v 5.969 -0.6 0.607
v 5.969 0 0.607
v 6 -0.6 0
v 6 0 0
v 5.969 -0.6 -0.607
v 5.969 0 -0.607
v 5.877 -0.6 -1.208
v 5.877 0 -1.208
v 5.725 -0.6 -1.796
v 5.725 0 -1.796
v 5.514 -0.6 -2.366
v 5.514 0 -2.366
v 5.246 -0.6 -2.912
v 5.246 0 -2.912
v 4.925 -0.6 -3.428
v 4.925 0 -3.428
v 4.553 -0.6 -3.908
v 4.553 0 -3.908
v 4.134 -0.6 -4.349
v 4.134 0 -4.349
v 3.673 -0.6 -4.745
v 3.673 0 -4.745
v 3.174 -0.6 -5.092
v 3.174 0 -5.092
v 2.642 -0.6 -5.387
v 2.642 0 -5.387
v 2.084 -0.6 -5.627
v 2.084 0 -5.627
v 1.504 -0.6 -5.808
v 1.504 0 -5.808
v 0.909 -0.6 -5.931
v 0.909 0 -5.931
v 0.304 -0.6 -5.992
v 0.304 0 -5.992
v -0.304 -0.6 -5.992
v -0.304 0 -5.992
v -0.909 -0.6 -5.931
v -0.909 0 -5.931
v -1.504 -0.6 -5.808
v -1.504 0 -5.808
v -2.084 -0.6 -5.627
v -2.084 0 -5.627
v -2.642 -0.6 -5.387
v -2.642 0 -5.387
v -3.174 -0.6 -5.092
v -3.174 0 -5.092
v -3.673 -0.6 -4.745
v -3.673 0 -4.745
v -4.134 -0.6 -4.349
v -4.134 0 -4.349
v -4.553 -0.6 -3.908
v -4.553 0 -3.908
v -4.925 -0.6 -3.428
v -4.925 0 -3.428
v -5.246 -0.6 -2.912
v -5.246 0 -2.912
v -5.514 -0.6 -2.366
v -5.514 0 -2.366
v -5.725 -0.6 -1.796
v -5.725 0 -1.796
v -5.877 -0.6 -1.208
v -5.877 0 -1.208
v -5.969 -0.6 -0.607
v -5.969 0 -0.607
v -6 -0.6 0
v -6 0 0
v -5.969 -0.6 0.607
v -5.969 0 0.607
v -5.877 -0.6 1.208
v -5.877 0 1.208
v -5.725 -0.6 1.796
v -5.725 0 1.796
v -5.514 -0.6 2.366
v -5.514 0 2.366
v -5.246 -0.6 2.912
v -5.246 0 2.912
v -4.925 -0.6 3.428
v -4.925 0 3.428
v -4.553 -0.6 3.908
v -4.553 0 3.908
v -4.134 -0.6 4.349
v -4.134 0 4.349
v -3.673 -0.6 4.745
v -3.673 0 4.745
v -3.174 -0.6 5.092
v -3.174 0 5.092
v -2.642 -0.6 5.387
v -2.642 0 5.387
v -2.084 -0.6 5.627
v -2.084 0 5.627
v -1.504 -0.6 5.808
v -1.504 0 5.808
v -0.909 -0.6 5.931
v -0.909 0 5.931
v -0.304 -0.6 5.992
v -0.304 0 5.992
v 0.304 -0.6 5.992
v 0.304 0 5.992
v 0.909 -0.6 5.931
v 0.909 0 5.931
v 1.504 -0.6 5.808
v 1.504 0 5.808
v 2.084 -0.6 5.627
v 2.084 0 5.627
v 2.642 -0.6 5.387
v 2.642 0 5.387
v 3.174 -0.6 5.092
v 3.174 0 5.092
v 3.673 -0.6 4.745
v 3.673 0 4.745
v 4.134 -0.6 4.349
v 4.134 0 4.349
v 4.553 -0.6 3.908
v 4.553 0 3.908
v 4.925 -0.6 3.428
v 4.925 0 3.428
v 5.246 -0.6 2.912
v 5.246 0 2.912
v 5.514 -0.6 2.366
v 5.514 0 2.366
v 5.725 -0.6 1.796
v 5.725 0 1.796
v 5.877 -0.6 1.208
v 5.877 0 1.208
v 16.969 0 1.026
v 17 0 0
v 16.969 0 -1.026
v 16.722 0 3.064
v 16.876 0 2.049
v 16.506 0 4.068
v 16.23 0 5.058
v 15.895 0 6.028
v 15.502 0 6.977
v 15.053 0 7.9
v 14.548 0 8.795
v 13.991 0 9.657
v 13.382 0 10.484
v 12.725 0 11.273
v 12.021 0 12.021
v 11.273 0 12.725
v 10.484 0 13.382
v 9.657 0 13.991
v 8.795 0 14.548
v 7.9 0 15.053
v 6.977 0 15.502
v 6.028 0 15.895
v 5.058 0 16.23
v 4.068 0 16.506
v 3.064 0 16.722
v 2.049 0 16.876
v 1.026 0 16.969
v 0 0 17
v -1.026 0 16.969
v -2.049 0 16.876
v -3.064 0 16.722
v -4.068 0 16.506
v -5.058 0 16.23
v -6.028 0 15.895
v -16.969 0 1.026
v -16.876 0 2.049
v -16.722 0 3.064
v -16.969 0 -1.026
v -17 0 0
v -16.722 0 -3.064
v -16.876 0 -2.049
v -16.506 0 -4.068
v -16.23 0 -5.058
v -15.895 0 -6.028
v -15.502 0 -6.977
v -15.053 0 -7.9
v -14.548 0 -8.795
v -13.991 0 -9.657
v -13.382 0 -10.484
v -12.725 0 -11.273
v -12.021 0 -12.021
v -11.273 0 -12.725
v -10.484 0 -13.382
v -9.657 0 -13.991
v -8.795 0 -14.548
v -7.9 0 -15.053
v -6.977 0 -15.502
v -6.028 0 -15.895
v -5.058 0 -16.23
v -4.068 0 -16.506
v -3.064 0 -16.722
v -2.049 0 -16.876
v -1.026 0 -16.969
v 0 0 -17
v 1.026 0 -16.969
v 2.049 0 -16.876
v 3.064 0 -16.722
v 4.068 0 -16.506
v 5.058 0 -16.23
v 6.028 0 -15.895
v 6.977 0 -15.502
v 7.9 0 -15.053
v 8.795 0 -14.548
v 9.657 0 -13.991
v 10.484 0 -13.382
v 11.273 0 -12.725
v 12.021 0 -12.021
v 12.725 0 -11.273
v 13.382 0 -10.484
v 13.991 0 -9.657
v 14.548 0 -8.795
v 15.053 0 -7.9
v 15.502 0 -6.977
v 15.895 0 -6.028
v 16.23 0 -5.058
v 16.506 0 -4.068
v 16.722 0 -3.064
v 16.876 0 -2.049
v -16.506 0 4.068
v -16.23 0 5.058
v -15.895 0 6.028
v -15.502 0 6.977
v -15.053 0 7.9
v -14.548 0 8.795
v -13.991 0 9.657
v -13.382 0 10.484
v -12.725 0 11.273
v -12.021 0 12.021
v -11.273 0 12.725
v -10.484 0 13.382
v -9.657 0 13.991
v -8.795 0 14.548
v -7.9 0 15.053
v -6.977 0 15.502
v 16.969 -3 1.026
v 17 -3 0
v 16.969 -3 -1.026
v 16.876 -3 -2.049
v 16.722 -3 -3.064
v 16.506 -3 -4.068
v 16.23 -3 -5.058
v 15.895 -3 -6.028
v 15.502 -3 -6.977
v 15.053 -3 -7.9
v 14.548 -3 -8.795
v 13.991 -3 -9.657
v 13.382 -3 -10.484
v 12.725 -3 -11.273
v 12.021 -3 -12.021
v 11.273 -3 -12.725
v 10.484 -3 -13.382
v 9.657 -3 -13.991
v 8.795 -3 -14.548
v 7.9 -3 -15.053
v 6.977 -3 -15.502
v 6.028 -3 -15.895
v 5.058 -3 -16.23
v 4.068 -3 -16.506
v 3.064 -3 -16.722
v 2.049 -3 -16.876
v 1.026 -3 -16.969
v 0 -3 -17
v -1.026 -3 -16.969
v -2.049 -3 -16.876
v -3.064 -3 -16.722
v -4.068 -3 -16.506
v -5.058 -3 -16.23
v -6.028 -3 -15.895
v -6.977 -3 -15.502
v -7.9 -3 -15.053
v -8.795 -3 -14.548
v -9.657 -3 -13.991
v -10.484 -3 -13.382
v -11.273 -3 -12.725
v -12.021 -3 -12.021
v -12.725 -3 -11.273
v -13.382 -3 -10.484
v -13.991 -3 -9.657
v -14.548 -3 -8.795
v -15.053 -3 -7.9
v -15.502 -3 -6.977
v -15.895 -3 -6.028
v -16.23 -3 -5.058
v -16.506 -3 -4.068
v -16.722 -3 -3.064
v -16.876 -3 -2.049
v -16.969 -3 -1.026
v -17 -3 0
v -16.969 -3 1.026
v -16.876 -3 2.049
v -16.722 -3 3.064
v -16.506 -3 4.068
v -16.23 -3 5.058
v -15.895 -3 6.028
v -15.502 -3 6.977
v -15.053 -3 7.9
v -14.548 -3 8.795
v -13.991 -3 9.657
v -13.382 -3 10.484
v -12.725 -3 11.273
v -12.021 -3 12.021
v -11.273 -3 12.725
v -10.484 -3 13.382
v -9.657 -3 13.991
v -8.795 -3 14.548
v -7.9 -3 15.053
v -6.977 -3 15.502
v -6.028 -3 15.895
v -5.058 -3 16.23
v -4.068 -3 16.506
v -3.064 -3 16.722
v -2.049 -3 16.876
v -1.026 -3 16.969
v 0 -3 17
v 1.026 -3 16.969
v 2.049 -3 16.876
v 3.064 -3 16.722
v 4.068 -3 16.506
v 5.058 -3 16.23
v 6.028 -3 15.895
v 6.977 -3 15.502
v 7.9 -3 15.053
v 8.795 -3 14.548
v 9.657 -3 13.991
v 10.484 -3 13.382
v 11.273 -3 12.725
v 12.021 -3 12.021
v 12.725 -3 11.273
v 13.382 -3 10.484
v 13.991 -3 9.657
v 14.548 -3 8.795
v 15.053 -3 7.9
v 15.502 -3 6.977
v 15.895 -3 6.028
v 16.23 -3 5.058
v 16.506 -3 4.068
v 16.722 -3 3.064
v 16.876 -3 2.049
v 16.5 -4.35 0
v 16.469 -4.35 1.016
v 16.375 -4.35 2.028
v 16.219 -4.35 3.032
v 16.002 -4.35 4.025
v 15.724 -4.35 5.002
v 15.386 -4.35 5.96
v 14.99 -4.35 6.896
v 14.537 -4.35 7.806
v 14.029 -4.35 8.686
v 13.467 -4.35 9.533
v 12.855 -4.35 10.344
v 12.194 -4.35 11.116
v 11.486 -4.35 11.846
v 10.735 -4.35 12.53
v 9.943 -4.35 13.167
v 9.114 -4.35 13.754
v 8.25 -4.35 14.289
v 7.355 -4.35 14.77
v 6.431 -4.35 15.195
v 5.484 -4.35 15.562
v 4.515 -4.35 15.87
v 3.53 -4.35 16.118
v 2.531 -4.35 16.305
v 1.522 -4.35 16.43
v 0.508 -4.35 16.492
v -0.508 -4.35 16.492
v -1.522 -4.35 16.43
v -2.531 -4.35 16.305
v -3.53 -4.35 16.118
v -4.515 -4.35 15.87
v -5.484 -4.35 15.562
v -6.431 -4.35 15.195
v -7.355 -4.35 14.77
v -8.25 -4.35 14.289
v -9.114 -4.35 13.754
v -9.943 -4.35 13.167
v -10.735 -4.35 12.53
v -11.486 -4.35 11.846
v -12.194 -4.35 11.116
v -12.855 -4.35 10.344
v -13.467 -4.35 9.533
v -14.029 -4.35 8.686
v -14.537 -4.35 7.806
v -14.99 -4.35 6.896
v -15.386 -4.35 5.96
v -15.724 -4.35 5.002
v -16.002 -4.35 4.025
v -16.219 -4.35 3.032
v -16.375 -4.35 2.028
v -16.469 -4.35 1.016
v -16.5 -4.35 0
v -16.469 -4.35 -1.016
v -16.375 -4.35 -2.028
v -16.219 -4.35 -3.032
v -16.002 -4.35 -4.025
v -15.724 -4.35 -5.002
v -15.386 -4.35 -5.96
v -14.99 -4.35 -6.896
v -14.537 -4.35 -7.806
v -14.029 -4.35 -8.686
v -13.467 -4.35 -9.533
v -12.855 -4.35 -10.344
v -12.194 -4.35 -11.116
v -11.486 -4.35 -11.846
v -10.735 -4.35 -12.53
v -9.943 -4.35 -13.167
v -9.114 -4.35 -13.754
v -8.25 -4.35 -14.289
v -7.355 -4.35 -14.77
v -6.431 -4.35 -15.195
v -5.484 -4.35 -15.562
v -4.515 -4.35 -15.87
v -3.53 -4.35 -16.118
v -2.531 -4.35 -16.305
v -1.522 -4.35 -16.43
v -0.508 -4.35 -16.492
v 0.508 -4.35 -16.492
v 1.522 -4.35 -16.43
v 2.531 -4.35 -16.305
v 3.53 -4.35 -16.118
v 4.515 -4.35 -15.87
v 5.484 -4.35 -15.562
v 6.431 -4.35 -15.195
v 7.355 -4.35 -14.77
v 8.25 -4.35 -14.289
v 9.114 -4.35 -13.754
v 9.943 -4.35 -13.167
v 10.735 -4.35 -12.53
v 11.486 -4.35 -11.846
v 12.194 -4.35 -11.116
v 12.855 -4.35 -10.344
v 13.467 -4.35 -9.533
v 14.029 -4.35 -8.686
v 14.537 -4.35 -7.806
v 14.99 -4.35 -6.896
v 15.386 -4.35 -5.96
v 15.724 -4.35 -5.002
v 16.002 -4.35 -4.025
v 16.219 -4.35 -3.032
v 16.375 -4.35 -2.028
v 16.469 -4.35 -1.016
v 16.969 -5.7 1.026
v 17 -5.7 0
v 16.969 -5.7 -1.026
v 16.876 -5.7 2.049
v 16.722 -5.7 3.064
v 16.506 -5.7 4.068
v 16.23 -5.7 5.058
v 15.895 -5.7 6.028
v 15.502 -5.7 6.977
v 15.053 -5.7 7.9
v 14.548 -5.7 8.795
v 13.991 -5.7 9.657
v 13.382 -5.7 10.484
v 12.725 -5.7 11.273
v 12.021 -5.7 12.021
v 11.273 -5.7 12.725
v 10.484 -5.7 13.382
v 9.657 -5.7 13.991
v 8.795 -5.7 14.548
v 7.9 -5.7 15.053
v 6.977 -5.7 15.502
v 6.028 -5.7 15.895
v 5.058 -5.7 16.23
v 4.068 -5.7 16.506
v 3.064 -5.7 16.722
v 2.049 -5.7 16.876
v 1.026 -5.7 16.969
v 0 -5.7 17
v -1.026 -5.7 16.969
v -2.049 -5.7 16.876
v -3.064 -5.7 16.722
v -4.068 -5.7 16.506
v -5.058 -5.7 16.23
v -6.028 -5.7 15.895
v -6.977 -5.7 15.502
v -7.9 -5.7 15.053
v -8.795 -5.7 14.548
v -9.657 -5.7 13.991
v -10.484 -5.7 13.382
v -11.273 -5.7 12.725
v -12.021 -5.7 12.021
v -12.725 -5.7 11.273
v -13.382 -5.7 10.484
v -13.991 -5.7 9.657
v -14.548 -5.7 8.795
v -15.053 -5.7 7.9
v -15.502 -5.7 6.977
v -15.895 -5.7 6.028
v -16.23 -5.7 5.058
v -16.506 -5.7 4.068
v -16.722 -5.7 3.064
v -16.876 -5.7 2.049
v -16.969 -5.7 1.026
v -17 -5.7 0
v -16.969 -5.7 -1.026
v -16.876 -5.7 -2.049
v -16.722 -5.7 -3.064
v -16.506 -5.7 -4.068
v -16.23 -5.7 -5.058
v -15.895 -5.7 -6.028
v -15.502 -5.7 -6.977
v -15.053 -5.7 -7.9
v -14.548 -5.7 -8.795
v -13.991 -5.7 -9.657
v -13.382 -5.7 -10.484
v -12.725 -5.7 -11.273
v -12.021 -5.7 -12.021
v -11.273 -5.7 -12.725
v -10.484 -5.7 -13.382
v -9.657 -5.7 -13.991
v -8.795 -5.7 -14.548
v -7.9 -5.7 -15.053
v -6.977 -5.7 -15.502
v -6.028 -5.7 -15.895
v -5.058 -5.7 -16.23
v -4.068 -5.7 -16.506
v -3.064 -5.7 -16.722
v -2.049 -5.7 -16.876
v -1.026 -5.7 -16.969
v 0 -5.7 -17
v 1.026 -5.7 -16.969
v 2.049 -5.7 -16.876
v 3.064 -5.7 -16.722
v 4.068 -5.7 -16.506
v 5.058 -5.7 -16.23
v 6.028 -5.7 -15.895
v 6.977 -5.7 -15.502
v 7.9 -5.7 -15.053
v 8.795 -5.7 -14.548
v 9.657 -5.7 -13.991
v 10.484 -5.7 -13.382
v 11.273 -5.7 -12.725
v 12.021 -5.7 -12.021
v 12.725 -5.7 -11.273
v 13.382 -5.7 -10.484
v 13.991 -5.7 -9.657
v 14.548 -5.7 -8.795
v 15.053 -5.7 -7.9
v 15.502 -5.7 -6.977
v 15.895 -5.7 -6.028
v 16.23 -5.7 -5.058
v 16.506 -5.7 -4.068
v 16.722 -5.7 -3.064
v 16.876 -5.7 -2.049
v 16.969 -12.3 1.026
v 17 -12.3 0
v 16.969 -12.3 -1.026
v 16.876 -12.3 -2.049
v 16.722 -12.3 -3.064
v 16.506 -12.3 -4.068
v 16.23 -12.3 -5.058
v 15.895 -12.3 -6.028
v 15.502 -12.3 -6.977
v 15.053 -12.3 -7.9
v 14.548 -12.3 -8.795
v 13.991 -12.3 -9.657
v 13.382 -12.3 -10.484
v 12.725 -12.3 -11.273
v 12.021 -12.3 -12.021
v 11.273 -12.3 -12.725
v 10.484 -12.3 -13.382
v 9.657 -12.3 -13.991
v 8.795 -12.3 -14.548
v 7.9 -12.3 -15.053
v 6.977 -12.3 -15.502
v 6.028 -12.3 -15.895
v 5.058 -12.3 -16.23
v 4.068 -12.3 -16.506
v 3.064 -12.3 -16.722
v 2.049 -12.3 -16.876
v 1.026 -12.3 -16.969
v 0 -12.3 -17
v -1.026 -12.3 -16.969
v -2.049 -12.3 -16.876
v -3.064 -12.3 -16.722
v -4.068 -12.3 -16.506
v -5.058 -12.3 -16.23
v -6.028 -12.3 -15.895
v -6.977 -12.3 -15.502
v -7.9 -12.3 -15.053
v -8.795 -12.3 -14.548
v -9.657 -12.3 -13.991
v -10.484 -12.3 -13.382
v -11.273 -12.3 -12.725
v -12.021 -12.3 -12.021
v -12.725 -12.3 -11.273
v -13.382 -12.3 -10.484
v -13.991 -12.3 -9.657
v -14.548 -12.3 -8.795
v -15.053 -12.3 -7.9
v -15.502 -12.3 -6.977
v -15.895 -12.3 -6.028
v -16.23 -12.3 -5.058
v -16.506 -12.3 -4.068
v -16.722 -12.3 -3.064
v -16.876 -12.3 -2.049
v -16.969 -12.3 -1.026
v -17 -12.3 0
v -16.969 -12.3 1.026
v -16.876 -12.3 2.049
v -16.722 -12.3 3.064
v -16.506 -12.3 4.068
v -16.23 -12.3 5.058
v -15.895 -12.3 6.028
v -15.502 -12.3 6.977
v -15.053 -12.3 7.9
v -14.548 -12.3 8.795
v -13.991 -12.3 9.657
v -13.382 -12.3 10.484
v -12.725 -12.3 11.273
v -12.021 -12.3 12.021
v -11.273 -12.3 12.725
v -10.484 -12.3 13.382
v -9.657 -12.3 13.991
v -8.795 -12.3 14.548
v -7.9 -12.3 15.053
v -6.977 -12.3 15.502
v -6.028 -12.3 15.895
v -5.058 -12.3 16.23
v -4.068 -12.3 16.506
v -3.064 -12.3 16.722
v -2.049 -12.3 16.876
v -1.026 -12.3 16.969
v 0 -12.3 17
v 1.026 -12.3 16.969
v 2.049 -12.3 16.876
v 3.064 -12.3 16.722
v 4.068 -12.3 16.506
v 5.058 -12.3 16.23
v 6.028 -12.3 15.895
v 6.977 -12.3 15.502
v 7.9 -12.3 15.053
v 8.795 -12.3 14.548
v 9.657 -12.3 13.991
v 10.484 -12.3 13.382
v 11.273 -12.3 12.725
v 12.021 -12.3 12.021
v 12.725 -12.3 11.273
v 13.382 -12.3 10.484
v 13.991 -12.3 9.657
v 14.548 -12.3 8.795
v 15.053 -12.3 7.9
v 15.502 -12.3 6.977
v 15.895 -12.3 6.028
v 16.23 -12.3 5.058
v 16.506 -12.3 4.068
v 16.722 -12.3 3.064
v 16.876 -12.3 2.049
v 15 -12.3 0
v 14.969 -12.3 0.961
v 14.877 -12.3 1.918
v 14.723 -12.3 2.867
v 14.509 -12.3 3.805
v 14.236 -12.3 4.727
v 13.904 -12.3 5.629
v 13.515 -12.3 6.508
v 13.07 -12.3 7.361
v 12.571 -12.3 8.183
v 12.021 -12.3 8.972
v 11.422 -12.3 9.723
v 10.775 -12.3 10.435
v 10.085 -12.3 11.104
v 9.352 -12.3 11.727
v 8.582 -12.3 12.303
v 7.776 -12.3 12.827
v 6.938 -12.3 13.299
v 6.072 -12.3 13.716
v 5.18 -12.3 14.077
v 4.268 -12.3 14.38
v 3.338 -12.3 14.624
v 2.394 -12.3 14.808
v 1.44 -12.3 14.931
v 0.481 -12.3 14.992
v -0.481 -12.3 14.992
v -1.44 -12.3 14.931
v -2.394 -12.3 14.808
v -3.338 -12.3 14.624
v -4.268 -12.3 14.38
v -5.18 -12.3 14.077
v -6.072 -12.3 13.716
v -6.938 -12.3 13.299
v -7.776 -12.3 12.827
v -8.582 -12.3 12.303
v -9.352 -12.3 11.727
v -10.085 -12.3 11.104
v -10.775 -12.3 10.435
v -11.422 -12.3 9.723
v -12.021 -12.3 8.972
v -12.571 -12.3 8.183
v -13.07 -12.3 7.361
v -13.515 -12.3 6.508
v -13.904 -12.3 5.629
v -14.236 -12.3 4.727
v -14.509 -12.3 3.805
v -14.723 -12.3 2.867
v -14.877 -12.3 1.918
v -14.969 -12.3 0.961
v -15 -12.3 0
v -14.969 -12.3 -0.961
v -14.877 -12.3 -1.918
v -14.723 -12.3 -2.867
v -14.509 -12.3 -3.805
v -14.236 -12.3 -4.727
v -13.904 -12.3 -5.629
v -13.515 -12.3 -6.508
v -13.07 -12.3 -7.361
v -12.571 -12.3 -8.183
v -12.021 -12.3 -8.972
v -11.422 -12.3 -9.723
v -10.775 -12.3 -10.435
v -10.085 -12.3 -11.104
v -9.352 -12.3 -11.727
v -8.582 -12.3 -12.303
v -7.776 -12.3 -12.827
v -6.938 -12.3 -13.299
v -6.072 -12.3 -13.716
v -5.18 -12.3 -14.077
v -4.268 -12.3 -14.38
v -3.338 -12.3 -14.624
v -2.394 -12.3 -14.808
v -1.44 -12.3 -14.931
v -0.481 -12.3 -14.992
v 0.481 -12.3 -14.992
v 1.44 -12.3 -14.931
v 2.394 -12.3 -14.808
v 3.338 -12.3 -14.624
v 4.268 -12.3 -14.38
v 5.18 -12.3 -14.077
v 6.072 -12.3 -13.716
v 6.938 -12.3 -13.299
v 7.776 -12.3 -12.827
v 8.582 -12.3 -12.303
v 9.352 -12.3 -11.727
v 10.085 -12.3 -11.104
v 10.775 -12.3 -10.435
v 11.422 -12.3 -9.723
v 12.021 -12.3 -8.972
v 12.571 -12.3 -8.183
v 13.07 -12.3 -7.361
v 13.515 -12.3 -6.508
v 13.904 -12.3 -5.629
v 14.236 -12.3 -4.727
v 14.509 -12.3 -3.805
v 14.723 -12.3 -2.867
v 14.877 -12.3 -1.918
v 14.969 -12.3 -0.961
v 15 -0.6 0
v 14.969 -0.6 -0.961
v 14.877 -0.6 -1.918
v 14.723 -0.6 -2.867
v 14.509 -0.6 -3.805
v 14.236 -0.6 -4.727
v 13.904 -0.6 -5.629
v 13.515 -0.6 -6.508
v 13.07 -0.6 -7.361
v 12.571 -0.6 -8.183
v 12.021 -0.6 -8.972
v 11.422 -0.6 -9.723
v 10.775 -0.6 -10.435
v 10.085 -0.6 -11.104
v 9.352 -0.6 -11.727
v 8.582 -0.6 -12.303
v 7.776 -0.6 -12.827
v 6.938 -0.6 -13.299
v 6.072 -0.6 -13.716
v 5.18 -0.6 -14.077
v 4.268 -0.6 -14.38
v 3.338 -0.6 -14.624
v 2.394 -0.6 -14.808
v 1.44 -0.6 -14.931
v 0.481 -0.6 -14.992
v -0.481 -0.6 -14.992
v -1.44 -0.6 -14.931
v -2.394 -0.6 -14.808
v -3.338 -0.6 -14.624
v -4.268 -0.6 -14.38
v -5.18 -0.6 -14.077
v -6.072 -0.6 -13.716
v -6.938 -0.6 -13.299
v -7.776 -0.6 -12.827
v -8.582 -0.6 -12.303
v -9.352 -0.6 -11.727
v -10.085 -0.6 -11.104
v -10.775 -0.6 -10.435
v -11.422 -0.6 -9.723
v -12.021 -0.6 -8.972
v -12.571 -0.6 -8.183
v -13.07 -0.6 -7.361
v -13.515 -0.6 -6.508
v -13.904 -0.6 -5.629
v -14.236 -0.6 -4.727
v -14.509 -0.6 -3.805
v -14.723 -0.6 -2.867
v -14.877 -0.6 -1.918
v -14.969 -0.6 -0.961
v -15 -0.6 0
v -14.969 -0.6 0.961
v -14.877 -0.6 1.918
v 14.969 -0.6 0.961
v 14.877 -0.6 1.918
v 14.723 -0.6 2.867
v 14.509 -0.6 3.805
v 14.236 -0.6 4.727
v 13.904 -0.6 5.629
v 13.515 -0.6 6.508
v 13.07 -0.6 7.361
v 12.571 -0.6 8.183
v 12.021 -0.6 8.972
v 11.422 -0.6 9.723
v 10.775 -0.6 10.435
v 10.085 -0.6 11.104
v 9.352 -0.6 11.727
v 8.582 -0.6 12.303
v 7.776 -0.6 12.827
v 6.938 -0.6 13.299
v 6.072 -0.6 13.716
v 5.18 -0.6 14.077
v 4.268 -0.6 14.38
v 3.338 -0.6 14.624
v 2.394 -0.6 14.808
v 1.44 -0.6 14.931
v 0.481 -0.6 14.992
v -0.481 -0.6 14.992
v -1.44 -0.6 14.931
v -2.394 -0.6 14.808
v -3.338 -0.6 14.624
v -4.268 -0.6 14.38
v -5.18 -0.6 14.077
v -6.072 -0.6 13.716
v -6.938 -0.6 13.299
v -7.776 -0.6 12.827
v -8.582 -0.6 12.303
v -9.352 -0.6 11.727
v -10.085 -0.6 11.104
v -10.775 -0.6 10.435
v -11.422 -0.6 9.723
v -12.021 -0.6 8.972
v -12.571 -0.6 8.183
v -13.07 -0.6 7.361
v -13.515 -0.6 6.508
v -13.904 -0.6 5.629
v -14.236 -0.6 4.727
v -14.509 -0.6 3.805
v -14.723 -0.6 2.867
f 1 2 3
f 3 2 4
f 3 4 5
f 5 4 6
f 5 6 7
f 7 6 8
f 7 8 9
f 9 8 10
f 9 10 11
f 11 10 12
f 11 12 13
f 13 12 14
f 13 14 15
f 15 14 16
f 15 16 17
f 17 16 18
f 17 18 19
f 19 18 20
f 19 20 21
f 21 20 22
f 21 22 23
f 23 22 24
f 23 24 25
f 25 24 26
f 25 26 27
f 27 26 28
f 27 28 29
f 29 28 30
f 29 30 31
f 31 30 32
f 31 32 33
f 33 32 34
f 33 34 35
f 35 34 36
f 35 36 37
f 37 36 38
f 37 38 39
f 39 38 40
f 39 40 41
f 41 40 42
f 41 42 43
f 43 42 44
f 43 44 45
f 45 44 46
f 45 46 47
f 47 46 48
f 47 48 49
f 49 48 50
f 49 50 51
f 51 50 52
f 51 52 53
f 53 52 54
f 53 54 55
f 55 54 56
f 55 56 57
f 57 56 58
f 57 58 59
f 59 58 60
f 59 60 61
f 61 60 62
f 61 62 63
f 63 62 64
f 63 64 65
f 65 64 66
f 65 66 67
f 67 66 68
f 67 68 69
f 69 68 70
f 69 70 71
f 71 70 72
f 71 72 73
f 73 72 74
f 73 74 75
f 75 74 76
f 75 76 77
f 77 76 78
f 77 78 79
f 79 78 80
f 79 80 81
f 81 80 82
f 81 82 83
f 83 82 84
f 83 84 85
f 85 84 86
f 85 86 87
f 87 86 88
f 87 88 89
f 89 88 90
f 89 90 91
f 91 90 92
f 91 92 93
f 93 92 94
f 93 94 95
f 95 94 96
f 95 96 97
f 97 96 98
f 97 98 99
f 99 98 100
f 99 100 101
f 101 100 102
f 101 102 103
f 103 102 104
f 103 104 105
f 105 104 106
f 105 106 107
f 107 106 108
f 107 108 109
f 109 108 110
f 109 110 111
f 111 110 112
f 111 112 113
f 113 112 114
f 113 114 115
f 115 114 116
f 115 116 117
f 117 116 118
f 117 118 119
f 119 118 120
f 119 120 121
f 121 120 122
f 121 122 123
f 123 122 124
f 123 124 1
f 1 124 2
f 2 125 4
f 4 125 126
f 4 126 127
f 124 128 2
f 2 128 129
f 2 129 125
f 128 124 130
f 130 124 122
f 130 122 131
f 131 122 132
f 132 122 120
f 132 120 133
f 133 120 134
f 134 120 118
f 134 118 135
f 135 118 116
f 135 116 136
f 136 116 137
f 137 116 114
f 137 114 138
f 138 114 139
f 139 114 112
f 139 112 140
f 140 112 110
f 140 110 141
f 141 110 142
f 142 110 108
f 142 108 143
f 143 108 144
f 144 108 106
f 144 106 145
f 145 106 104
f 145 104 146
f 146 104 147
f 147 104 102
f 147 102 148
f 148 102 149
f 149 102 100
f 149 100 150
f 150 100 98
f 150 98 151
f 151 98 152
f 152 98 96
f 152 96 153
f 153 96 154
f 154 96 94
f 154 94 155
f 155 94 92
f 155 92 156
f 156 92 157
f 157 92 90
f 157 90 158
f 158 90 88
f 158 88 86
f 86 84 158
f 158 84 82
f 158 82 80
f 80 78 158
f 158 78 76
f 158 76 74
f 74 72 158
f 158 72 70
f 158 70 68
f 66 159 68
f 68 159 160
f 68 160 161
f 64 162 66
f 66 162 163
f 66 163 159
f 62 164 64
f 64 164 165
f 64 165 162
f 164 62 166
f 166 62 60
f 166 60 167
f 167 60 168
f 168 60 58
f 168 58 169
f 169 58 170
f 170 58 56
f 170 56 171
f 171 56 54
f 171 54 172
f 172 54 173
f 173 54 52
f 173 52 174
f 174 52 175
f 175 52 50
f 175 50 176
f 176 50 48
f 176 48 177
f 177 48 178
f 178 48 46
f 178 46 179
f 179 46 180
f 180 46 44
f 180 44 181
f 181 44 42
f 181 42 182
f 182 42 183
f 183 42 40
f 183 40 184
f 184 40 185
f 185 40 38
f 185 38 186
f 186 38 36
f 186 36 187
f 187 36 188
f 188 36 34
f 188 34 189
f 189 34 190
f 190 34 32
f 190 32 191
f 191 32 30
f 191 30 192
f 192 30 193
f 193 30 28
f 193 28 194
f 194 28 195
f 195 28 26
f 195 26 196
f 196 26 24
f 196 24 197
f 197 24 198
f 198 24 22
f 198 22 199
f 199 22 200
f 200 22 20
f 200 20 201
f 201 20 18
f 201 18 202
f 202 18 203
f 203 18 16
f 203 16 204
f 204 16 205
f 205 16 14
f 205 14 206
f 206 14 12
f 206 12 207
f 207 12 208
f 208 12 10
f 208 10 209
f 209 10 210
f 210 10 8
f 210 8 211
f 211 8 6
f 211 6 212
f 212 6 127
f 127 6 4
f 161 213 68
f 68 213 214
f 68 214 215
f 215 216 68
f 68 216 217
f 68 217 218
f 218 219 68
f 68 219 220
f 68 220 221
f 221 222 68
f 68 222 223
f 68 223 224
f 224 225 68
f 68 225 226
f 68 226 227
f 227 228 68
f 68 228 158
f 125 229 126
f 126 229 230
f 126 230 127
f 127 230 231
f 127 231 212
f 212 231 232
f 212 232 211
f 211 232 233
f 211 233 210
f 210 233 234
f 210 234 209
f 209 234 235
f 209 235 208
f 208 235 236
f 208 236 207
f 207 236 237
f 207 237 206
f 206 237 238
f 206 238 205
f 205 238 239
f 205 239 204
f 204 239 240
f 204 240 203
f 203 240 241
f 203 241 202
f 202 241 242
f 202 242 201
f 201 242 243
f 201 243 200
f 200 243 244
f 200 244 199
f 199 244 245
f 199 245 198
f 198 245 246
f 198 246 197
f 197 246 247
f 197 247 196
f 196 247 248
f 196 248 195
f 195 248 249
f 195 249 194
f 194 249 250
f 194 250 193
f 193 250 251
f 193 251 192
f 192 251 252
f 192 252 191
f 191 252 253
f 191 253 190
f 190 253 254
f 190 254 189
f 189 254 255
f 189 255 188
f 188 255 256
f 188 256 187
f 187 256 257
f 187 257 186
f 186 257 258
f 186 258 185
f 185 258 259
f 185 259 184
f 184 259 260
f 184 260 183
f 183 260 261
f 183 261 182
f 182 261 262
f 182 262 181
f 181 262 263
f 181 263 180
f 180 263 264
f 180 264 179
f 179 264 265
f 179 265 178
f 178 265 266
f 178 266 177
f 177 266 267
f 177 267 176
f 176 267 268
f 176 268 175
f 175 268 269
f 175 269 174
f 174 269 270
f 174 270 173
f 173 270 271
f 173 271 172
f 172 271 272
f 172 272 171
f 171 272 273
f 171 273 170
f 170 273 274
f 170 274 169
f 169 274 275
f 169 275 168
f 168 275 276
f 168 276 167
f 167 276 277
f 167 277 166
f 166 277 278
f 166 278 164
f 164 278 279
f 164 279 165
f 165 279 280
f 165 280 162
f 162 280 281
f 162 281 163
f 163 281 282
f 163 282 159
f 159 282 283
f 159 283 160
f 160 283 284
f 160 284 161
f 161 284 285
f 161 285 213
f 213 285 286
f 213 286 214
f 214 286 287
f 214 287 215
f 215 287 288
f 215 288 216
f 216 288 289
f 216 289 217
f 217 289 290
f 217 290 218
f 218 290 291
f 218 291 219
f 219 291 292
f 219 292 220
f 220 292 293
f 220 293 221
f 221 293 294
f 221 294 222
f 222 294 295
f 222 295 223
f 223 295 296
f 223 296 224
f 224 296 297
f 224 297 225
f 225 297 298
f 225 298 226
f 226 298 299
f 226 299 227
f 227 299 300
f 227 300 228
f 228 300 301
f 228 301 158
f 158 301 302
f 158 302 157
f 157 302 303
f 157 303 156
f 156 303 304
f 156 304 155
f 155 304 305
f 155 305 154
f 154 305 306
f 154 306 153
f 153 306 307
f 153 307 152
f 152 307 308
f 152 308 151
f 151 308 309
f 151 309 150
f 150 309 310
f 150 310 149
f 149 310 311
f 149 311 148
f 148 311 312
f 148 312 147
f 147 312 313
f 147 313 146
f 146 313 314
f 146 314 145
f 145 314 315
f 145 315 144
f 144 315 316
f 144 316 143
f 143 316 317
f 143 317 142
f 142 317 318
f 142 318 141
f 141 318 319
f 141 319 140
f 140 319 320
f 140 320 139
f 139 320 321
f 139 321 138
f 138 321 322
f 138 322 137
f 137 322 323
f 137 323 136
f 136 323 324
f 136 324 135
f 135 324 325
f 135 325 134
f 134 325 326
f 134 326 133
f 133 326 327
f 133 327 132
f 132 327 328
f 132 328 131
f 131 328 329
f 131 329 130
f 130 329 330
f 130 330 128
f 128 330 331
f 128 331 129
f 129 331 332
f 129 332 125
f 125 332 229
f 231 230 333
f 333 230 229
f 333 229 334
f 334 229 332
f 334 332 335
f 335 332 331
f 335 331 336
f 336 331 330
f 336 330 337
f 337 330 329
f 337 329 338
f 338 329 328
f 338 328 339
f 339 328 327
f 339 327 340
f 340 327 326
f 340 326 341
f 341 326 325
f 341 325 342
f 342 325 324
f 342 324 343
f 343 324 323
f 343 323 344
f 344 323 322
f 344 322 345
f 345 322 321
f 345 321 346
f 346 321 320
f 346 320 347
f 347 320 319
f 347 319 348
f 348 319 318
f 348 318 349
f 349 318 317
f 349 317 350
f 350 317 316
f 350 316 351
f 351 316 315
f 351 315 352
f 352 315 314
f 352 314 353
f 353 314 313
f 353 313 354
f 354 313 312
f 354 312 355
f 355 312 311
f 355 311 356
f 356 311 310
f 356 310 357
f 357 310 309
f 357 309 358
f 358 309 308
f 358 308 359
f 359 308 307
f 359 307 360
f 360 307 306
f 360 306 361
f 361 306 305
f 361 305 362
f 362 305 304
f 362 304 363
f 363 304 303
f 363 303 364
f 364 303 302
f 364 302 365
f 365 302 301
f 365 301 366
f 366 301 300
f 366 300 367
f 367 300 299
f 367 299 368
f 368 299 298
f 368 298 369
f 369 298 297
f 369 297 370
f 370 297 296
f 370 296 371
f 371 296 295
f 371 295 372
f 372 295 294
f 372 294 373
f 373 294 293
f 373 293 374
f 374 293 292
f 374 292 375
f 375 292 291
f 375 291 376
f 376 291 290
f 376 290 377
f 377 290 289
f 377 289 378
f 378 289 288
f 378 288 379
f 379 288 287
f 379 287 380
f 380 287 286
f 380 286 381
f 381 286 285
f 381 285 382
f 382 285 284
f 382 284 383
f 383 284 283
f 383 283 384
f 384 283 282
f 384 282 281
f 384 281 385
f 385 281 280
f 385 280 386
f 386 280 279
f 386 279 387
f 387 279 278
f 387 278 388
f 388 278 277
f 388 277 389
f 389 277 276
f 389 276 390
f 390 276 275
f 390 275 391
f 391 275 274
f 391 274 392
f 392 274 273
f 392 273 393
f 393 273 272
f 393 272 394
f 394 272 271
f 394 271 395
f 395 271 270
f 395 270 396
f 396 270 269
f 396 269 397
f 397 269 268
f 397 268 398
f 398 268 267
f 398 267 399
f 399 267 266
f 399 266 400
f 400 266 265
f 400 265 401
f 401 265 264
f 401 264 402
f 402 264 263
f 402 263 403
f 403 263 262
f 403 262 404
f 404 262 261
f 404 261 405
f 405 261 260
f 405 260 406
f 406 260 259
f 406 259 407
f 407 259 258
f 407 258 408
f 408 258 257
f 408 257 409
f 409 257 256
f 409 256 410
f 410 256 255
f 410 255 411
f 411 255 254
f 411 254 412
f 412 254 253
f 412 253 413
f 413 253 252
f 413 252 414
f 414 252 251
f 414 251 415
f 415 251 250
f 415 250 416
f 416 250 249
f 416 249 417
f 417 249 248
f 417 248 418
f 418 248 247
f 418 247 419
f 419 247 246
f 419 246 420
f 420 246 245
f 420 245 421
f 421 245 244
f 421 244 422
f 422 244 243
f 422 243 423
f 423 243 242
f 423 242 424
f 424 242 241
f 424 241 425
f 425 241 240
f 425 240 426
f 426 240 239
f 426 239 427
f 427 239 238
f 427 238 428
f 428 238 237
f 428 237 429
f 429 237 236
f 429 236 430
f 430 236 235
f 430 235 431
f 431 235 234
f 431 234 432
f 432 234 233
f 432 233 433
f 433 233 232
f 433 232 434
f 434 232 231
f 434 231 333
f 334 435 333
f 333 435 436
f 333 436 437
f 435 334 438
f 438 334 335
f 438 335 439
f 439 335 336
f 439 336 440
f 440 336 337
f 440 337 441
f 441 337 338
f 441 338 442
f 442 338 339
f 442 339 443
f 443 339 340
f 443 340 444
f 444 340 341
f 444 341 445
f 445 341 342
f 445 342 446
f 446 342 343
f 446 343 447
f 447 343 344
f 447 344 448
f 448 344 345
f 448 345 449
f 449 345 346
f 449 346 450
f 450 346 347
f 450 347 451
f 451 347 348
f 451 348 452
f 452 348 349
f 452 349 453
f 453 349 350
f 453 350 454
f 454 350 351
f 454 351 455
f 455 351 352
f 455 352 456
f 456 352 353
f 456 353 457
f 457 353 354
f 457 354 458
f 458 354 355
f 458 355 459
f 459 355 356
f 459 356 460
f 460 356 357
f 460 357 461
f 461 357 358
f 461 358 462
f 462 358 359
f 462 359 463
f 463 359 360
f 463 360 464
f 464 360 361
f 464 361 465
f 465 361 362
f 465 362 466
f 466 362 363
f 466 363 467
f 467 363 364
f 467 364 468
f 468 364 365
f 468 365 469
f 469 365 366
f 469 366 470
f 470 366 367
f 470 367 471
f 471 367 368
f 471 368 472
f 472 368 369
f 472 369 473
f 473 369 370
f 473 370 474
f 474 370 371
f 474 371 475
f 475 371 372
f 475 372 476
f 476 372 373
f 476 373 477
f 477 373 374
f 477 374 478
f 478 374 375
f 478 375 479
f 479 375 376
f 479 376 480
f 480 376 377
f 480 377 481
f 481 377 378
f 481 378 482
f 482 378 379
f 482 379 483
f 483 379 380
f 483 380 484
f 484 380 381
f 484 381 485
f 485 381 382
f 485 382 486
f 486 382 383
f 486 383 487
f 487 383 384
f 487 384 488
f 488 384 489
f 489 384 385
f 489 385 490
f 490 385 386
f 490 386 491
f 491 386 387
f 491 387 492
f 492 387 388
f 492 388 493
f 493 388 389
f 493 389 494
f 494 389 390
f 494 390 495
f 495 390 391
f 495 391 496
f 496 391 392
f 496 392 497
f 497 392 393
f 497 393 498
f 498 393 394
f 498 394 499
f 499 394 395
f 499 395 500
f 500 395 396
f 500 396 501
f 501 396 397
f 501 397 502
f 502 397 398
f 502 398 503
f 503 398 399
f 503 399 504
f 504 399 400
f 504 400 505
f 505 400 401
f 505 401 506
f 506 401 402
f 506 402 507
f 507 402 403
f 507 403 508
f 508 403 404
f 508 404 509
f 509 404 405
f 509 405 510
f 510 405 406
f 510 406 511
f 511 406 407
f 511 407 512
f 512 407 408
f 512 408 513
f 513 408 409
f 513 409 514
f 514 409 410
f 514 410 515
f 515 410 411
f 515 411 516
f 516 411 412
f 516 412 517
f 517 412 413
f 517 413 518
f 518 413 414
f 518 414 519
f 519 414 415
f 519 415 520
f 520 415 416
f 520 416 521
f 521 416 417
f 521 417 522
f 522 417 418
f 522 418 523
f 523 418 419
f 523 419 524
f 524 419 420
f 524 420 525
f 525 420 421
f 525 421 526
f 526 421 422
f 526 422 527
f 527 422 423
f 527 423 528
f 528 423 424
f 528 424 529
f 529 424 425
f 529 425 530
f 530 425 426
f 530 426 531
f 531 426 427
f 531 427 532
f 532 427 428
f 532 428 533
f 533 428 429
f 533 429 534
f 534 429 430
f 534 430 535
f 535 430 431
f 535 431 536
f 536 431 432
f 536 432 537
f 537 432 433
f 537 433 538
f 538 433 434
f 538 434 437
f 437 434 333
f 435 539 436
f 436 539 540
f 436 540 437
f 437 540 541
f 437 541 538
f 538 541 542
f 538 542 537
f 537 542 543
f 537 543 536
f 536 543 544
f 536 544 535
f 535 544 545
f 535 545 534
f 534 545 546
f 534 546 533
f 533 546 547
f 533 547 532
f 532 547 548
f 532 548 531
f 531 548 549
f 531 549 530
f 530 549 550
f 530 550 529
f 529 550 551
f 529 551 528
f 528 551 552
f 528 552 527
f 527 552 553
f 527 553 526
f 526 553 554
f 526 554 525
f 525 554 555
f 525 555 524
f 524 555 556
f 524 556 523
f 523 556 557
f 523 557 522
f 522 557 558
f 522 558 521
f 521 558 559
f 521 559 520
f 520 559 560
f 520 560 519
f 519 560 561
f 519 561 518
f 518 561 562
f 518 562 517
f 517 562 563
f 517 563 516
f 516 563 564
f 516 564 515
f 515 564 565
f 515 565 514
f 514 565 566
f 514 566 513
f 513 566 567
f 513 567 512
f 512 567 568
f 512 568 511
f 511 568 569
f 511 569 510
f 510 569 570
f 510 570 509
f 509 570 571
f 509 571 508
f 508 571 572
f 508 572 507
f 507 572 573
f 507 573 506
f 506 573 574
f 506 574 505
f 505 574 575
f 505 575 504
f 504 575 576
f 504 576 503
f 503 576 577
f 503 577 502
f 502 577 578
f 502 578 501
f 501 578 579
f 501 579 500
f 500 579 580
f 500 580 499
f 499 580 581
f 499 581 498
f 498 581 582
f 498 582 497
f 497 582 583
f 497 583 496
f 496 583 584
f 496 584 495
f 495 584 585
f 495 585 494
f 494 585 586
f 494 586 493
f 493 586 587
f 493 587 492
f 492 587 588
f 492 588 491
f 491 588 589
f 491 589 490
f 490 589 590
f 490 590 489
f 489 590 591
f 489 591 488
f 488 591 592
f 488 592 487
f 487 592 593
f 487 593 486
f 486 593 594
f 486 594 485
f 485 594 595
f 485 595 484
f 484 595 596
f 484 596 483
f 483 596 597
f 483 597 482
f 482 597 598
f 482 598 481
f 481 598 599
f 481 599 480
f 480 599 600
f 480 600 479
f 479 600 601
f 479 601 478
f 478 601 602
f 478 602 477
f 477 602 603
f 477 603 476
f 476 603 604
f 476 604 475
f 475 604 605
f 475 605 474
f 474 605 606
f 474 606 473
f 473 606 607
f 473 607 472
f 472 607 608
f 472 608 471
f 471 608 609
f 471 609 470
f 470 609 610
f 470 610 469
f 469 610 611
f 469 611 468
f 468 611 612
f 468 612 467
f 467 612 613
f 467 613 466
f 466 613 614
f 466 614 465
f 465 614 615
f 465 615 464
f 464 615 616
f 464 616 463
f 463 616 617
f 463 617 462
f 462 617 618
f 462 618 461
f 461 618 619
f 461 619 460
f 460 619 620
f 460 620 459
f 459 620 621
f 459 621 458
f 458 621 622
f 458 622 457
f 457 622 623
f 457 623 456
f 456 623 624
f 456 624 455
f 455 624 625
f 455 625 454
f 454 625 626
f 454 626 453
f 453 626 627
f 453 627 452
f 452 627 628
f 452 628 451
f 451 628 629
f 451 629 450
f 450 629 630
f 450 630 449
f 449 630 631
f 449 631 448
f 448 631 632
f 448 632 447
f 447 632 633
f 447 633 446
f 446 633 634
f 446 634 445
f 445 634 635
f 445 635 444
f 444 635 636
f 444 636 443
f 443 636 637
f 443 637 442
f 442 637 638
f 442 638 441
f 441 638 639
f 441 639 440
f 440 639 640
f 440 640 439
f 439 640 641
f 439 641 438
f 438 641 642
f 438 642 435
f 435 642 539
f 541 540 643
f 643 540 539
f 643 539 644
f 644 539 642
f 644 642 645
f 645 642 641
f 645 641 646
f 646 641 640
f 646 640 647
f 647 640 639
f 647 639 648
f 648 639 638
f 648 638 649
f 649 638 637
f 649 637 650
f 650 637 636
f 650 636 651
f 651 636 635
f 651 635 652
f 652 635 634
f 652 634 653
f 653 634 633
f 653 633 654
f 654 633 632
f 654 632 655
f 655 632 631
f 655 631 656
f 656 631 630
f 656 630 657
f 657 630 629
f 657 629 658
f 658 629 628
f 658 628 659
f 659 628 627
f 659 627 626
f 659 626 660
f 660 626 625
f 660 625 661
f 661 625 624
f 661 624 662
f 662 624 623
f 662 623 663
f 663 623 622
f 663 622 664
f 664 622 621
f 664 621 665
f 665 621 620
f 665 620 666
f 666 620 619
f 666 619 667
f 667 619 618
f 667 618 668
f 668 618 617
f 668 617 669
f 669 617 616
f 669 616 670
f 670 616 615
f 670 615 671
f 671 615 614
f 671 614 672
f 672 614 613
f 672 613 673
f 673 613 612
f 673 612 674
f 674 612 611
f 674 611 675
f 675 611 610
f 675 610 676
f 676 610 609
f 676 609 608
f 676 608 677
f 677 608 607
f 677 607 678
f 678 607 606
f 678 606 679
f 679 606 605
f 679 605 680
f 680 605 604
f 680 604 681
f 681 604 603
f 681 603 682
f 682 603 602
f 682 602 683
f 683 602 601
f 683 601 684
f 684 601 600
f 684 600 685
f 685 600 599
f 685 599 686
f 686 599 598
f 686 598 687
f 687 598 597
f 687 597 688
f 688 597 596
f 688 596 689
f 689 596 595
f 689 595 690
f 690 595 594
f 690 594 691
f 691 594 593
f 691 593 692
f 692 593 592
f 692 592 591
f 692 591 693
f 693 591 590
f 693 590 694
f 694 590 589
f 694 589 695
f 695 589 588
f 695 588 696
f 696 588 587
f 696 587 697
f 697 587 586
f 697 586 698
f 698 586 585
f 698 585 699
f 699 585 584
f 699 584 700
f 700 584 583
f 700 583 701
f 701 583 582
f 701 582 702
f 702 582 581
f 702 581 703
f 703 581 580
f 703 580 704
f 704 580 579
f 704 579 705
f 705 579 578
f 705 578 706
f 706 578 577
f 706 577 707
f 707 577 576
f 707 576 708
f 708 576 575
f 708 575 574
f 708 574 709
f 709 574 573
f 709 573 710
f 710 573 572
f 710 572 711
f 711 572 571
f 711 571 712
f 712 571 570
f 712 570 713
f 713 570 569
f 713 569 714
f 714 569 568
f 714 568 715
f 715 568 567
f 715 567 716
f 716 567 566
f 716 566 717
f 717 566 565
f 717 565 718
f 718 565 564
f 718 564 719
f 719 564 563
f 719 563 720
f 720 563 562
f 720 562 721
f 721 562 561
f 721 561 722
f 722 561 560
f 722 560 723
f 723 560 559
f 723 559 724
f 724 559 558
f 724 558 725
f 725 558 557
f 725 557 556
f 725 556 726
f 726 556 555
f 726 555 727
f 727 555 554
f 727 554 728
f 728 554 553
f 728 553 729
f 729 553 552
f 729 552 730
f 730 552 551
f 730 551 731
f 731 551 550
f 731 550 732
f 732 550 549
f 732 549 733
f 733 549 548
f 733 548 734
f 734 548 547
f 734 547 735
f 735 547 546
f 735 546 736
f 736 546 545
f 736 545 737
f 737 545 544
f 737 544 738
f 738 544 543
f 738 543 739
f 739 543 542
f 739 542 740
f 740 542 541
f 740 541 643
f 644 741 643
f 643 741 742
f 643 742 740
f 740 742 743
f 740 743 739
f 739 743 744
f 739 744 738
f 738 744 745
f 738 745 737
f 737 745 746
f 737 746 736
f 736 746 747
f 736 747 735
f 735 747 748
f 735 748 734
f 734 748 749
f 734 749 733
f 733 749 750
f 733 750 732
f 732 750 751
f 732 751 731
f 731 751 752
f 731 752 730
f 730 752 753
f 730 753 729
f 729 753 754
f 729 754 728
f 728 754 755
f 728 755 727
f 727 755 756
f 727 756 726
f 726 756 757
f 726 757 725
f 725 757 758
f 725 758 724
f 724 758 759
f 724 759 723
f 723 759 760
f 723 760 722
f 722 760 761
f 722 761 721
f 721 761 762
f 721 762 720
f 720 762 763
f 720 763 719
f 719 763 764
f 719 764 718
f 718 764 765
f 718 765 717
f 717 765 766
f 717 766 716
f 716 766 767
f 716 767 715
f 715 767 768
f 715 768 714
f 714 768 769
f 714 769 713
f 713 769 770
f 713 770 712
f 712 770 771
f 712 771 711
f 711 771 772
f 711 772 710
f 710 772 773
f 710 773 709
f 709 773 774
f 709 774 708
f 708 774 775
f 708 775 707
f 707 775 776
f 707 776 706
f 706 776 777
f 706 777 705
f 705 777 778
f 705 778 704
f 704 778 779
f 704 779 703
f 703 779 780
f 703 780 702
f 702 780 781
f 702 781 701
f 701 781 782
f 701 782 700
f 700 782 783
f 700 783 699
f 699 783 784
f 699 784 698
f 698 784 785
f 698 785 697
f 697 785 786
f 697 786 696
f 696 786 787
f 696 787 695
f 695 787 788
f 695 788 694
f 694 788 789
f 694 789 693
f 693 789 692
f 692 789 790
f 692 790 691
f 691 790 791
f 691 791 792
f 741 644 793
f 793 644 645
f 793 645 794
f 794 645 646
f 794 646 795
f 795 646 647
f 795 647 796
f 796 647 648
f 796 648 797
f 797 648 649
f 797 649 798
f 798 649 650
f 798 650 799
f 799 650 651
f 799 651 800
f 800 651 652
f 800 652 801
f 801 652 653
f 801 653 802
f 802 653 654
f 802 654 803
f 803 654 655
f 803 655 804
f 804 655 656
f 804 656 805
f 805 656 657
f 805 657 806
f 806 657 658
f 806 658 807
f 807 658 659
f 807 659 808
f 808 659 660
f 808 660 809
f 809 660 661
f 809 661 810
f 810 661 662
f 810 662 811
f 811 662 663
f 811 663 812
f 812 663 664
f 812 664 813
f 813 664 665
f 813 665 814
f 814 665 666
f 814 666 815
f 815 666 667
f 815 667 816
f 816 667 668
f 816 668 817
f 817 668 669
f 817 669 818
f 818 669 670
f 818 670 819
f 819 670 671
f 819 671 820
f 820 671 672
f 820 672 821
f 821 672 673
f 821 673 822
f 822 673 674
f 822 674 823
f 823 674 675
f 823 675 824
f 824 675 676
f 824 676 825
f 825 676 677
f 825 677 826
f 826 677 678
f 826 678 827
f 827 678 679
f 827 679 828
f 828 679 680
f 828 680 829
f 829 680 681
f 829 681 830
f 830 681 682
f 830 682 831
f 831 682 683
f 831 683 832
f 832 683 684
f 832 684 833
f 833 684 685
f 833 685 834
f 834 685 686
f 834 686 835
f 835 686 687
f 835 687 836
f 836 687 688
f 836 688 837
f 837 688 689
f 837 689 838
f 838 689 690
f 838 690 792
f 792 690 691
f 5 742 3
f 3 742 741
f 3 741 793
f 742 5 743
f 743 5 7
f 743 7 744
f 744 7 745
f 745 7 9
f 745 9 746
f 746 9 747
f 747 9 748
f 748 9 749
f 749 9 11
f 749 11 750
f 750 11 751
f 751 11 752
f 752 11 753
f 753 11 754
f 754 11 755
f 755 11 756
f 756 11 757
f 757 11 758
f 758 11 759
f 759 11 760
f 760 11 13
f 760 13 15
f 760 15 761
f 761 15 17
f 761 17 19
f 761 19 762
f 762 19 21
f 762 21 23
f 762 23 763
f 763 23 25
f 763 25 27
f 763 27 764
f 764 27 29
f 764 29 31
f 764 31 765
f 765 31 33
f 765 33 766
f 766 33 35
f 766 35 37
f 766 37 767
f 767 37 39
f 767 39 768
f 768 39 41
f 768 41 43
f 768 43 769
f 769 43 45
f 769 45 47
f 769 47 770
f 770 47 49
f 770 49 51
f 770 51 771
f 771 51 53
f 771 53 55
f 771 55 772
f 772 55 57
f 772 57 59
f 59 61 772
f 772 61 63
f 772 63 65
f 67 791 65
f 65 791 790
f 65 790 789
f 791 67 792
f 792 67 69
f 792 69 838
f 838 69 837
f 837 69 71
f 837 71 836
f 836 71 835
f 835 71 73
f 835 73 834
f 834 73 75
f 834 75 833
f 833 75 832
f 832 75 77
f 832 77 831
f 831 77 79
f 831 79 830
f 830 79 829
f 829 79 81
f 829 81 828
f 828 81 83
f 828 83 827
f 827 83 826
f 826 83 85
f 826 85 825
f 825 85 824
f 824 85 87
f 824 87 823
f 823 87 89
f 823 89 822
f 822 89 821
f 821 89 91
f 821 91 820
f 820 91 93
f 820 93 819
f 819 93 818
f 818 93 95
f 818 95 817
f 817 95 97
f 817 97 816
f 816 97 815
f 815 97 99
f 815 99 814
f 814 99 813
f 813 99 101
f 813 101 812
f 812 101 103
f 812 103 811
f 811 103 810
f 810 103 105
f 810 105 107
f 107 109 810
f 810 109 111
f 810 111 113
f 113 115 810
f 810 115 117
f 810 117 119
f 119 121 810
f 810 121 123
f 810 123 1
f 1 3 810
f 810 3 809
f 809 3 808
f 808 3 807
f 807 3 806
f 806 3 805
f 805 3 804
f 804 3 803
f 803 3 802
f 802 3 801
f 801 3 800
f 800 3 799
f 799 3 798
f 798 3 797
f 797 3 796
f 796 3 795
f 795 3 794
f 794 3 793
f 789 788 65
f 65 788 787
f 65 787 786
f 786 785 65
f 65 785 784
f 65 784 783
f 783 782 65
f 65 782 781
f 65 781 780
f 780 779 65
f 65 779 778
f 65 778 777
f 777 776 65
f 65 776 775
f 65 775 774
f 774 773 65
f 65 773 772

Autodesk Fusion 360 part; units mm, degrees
sketch "Sketch1" plane through (0, 0, 0) normal (0, 0, 1) x (1, 0, 0)
  line L0 (0, 0) -> (17, 0)
  line L1 (17, 0) -> (17, -3)
  line L2 (17, -3) -> (17, -5.7)
  line L3 (17, -5.7) -> (17, -12.3)
  line L4 (17, -12.3) -> (15, -12.3)
  line L5 (15, -12.3) -> (15, -0.6)
  line L6 (17, -3) -> (17, -4.35) construction
  line L7 (17, -4.35) -> (16.5, -4.35) construction
  line L8 (17, -3) -> (16.5, -4.35)
  line L9 (16.5, -4.35) -> (17, -5.7)
  line L10 (0, 0) -> (0, -0.6)
  line L11 (0, -0.6) -> (15, -0.6)
  dimension "d1" = 17
  dimension "d2" = 3
  dimension "d4" = 2.7
  dimension "d5" = 6.6
  dimension "d6" = 2
  dimension "d7" = 11.7
  dimension "d8" = 1.35
  dimension "d9" = 0.5
  dimension "d10" = 15
  dimension "d11" = 0.6
  dimension "d12" = 17
revolve "Revolve1" add sketch "Sketch1" angle 360 about axis through (0, 0, 0) along (0, -1, 0) contours L0 L1 L3 L4 L5 L8 L9 L10 L11
sketch "Sketch2" plane through (0, 0, 0) normal (0, 1, 0) x (-1, 0, 0)
  circle A0 centre (0, 0) radius 17
  circle A1 centre (0, 0) radius 16.575
  circle A2 centre (0, 0) radius 6
  dimension "d14" = 34
  dimension "d15" = 33.15
  dimension "d16" = 12
extrude "Extrude1" cut sketch "Sketch2" against normal blind 3 contours A2
equation "d15 = d14 - 0.85 mm"
